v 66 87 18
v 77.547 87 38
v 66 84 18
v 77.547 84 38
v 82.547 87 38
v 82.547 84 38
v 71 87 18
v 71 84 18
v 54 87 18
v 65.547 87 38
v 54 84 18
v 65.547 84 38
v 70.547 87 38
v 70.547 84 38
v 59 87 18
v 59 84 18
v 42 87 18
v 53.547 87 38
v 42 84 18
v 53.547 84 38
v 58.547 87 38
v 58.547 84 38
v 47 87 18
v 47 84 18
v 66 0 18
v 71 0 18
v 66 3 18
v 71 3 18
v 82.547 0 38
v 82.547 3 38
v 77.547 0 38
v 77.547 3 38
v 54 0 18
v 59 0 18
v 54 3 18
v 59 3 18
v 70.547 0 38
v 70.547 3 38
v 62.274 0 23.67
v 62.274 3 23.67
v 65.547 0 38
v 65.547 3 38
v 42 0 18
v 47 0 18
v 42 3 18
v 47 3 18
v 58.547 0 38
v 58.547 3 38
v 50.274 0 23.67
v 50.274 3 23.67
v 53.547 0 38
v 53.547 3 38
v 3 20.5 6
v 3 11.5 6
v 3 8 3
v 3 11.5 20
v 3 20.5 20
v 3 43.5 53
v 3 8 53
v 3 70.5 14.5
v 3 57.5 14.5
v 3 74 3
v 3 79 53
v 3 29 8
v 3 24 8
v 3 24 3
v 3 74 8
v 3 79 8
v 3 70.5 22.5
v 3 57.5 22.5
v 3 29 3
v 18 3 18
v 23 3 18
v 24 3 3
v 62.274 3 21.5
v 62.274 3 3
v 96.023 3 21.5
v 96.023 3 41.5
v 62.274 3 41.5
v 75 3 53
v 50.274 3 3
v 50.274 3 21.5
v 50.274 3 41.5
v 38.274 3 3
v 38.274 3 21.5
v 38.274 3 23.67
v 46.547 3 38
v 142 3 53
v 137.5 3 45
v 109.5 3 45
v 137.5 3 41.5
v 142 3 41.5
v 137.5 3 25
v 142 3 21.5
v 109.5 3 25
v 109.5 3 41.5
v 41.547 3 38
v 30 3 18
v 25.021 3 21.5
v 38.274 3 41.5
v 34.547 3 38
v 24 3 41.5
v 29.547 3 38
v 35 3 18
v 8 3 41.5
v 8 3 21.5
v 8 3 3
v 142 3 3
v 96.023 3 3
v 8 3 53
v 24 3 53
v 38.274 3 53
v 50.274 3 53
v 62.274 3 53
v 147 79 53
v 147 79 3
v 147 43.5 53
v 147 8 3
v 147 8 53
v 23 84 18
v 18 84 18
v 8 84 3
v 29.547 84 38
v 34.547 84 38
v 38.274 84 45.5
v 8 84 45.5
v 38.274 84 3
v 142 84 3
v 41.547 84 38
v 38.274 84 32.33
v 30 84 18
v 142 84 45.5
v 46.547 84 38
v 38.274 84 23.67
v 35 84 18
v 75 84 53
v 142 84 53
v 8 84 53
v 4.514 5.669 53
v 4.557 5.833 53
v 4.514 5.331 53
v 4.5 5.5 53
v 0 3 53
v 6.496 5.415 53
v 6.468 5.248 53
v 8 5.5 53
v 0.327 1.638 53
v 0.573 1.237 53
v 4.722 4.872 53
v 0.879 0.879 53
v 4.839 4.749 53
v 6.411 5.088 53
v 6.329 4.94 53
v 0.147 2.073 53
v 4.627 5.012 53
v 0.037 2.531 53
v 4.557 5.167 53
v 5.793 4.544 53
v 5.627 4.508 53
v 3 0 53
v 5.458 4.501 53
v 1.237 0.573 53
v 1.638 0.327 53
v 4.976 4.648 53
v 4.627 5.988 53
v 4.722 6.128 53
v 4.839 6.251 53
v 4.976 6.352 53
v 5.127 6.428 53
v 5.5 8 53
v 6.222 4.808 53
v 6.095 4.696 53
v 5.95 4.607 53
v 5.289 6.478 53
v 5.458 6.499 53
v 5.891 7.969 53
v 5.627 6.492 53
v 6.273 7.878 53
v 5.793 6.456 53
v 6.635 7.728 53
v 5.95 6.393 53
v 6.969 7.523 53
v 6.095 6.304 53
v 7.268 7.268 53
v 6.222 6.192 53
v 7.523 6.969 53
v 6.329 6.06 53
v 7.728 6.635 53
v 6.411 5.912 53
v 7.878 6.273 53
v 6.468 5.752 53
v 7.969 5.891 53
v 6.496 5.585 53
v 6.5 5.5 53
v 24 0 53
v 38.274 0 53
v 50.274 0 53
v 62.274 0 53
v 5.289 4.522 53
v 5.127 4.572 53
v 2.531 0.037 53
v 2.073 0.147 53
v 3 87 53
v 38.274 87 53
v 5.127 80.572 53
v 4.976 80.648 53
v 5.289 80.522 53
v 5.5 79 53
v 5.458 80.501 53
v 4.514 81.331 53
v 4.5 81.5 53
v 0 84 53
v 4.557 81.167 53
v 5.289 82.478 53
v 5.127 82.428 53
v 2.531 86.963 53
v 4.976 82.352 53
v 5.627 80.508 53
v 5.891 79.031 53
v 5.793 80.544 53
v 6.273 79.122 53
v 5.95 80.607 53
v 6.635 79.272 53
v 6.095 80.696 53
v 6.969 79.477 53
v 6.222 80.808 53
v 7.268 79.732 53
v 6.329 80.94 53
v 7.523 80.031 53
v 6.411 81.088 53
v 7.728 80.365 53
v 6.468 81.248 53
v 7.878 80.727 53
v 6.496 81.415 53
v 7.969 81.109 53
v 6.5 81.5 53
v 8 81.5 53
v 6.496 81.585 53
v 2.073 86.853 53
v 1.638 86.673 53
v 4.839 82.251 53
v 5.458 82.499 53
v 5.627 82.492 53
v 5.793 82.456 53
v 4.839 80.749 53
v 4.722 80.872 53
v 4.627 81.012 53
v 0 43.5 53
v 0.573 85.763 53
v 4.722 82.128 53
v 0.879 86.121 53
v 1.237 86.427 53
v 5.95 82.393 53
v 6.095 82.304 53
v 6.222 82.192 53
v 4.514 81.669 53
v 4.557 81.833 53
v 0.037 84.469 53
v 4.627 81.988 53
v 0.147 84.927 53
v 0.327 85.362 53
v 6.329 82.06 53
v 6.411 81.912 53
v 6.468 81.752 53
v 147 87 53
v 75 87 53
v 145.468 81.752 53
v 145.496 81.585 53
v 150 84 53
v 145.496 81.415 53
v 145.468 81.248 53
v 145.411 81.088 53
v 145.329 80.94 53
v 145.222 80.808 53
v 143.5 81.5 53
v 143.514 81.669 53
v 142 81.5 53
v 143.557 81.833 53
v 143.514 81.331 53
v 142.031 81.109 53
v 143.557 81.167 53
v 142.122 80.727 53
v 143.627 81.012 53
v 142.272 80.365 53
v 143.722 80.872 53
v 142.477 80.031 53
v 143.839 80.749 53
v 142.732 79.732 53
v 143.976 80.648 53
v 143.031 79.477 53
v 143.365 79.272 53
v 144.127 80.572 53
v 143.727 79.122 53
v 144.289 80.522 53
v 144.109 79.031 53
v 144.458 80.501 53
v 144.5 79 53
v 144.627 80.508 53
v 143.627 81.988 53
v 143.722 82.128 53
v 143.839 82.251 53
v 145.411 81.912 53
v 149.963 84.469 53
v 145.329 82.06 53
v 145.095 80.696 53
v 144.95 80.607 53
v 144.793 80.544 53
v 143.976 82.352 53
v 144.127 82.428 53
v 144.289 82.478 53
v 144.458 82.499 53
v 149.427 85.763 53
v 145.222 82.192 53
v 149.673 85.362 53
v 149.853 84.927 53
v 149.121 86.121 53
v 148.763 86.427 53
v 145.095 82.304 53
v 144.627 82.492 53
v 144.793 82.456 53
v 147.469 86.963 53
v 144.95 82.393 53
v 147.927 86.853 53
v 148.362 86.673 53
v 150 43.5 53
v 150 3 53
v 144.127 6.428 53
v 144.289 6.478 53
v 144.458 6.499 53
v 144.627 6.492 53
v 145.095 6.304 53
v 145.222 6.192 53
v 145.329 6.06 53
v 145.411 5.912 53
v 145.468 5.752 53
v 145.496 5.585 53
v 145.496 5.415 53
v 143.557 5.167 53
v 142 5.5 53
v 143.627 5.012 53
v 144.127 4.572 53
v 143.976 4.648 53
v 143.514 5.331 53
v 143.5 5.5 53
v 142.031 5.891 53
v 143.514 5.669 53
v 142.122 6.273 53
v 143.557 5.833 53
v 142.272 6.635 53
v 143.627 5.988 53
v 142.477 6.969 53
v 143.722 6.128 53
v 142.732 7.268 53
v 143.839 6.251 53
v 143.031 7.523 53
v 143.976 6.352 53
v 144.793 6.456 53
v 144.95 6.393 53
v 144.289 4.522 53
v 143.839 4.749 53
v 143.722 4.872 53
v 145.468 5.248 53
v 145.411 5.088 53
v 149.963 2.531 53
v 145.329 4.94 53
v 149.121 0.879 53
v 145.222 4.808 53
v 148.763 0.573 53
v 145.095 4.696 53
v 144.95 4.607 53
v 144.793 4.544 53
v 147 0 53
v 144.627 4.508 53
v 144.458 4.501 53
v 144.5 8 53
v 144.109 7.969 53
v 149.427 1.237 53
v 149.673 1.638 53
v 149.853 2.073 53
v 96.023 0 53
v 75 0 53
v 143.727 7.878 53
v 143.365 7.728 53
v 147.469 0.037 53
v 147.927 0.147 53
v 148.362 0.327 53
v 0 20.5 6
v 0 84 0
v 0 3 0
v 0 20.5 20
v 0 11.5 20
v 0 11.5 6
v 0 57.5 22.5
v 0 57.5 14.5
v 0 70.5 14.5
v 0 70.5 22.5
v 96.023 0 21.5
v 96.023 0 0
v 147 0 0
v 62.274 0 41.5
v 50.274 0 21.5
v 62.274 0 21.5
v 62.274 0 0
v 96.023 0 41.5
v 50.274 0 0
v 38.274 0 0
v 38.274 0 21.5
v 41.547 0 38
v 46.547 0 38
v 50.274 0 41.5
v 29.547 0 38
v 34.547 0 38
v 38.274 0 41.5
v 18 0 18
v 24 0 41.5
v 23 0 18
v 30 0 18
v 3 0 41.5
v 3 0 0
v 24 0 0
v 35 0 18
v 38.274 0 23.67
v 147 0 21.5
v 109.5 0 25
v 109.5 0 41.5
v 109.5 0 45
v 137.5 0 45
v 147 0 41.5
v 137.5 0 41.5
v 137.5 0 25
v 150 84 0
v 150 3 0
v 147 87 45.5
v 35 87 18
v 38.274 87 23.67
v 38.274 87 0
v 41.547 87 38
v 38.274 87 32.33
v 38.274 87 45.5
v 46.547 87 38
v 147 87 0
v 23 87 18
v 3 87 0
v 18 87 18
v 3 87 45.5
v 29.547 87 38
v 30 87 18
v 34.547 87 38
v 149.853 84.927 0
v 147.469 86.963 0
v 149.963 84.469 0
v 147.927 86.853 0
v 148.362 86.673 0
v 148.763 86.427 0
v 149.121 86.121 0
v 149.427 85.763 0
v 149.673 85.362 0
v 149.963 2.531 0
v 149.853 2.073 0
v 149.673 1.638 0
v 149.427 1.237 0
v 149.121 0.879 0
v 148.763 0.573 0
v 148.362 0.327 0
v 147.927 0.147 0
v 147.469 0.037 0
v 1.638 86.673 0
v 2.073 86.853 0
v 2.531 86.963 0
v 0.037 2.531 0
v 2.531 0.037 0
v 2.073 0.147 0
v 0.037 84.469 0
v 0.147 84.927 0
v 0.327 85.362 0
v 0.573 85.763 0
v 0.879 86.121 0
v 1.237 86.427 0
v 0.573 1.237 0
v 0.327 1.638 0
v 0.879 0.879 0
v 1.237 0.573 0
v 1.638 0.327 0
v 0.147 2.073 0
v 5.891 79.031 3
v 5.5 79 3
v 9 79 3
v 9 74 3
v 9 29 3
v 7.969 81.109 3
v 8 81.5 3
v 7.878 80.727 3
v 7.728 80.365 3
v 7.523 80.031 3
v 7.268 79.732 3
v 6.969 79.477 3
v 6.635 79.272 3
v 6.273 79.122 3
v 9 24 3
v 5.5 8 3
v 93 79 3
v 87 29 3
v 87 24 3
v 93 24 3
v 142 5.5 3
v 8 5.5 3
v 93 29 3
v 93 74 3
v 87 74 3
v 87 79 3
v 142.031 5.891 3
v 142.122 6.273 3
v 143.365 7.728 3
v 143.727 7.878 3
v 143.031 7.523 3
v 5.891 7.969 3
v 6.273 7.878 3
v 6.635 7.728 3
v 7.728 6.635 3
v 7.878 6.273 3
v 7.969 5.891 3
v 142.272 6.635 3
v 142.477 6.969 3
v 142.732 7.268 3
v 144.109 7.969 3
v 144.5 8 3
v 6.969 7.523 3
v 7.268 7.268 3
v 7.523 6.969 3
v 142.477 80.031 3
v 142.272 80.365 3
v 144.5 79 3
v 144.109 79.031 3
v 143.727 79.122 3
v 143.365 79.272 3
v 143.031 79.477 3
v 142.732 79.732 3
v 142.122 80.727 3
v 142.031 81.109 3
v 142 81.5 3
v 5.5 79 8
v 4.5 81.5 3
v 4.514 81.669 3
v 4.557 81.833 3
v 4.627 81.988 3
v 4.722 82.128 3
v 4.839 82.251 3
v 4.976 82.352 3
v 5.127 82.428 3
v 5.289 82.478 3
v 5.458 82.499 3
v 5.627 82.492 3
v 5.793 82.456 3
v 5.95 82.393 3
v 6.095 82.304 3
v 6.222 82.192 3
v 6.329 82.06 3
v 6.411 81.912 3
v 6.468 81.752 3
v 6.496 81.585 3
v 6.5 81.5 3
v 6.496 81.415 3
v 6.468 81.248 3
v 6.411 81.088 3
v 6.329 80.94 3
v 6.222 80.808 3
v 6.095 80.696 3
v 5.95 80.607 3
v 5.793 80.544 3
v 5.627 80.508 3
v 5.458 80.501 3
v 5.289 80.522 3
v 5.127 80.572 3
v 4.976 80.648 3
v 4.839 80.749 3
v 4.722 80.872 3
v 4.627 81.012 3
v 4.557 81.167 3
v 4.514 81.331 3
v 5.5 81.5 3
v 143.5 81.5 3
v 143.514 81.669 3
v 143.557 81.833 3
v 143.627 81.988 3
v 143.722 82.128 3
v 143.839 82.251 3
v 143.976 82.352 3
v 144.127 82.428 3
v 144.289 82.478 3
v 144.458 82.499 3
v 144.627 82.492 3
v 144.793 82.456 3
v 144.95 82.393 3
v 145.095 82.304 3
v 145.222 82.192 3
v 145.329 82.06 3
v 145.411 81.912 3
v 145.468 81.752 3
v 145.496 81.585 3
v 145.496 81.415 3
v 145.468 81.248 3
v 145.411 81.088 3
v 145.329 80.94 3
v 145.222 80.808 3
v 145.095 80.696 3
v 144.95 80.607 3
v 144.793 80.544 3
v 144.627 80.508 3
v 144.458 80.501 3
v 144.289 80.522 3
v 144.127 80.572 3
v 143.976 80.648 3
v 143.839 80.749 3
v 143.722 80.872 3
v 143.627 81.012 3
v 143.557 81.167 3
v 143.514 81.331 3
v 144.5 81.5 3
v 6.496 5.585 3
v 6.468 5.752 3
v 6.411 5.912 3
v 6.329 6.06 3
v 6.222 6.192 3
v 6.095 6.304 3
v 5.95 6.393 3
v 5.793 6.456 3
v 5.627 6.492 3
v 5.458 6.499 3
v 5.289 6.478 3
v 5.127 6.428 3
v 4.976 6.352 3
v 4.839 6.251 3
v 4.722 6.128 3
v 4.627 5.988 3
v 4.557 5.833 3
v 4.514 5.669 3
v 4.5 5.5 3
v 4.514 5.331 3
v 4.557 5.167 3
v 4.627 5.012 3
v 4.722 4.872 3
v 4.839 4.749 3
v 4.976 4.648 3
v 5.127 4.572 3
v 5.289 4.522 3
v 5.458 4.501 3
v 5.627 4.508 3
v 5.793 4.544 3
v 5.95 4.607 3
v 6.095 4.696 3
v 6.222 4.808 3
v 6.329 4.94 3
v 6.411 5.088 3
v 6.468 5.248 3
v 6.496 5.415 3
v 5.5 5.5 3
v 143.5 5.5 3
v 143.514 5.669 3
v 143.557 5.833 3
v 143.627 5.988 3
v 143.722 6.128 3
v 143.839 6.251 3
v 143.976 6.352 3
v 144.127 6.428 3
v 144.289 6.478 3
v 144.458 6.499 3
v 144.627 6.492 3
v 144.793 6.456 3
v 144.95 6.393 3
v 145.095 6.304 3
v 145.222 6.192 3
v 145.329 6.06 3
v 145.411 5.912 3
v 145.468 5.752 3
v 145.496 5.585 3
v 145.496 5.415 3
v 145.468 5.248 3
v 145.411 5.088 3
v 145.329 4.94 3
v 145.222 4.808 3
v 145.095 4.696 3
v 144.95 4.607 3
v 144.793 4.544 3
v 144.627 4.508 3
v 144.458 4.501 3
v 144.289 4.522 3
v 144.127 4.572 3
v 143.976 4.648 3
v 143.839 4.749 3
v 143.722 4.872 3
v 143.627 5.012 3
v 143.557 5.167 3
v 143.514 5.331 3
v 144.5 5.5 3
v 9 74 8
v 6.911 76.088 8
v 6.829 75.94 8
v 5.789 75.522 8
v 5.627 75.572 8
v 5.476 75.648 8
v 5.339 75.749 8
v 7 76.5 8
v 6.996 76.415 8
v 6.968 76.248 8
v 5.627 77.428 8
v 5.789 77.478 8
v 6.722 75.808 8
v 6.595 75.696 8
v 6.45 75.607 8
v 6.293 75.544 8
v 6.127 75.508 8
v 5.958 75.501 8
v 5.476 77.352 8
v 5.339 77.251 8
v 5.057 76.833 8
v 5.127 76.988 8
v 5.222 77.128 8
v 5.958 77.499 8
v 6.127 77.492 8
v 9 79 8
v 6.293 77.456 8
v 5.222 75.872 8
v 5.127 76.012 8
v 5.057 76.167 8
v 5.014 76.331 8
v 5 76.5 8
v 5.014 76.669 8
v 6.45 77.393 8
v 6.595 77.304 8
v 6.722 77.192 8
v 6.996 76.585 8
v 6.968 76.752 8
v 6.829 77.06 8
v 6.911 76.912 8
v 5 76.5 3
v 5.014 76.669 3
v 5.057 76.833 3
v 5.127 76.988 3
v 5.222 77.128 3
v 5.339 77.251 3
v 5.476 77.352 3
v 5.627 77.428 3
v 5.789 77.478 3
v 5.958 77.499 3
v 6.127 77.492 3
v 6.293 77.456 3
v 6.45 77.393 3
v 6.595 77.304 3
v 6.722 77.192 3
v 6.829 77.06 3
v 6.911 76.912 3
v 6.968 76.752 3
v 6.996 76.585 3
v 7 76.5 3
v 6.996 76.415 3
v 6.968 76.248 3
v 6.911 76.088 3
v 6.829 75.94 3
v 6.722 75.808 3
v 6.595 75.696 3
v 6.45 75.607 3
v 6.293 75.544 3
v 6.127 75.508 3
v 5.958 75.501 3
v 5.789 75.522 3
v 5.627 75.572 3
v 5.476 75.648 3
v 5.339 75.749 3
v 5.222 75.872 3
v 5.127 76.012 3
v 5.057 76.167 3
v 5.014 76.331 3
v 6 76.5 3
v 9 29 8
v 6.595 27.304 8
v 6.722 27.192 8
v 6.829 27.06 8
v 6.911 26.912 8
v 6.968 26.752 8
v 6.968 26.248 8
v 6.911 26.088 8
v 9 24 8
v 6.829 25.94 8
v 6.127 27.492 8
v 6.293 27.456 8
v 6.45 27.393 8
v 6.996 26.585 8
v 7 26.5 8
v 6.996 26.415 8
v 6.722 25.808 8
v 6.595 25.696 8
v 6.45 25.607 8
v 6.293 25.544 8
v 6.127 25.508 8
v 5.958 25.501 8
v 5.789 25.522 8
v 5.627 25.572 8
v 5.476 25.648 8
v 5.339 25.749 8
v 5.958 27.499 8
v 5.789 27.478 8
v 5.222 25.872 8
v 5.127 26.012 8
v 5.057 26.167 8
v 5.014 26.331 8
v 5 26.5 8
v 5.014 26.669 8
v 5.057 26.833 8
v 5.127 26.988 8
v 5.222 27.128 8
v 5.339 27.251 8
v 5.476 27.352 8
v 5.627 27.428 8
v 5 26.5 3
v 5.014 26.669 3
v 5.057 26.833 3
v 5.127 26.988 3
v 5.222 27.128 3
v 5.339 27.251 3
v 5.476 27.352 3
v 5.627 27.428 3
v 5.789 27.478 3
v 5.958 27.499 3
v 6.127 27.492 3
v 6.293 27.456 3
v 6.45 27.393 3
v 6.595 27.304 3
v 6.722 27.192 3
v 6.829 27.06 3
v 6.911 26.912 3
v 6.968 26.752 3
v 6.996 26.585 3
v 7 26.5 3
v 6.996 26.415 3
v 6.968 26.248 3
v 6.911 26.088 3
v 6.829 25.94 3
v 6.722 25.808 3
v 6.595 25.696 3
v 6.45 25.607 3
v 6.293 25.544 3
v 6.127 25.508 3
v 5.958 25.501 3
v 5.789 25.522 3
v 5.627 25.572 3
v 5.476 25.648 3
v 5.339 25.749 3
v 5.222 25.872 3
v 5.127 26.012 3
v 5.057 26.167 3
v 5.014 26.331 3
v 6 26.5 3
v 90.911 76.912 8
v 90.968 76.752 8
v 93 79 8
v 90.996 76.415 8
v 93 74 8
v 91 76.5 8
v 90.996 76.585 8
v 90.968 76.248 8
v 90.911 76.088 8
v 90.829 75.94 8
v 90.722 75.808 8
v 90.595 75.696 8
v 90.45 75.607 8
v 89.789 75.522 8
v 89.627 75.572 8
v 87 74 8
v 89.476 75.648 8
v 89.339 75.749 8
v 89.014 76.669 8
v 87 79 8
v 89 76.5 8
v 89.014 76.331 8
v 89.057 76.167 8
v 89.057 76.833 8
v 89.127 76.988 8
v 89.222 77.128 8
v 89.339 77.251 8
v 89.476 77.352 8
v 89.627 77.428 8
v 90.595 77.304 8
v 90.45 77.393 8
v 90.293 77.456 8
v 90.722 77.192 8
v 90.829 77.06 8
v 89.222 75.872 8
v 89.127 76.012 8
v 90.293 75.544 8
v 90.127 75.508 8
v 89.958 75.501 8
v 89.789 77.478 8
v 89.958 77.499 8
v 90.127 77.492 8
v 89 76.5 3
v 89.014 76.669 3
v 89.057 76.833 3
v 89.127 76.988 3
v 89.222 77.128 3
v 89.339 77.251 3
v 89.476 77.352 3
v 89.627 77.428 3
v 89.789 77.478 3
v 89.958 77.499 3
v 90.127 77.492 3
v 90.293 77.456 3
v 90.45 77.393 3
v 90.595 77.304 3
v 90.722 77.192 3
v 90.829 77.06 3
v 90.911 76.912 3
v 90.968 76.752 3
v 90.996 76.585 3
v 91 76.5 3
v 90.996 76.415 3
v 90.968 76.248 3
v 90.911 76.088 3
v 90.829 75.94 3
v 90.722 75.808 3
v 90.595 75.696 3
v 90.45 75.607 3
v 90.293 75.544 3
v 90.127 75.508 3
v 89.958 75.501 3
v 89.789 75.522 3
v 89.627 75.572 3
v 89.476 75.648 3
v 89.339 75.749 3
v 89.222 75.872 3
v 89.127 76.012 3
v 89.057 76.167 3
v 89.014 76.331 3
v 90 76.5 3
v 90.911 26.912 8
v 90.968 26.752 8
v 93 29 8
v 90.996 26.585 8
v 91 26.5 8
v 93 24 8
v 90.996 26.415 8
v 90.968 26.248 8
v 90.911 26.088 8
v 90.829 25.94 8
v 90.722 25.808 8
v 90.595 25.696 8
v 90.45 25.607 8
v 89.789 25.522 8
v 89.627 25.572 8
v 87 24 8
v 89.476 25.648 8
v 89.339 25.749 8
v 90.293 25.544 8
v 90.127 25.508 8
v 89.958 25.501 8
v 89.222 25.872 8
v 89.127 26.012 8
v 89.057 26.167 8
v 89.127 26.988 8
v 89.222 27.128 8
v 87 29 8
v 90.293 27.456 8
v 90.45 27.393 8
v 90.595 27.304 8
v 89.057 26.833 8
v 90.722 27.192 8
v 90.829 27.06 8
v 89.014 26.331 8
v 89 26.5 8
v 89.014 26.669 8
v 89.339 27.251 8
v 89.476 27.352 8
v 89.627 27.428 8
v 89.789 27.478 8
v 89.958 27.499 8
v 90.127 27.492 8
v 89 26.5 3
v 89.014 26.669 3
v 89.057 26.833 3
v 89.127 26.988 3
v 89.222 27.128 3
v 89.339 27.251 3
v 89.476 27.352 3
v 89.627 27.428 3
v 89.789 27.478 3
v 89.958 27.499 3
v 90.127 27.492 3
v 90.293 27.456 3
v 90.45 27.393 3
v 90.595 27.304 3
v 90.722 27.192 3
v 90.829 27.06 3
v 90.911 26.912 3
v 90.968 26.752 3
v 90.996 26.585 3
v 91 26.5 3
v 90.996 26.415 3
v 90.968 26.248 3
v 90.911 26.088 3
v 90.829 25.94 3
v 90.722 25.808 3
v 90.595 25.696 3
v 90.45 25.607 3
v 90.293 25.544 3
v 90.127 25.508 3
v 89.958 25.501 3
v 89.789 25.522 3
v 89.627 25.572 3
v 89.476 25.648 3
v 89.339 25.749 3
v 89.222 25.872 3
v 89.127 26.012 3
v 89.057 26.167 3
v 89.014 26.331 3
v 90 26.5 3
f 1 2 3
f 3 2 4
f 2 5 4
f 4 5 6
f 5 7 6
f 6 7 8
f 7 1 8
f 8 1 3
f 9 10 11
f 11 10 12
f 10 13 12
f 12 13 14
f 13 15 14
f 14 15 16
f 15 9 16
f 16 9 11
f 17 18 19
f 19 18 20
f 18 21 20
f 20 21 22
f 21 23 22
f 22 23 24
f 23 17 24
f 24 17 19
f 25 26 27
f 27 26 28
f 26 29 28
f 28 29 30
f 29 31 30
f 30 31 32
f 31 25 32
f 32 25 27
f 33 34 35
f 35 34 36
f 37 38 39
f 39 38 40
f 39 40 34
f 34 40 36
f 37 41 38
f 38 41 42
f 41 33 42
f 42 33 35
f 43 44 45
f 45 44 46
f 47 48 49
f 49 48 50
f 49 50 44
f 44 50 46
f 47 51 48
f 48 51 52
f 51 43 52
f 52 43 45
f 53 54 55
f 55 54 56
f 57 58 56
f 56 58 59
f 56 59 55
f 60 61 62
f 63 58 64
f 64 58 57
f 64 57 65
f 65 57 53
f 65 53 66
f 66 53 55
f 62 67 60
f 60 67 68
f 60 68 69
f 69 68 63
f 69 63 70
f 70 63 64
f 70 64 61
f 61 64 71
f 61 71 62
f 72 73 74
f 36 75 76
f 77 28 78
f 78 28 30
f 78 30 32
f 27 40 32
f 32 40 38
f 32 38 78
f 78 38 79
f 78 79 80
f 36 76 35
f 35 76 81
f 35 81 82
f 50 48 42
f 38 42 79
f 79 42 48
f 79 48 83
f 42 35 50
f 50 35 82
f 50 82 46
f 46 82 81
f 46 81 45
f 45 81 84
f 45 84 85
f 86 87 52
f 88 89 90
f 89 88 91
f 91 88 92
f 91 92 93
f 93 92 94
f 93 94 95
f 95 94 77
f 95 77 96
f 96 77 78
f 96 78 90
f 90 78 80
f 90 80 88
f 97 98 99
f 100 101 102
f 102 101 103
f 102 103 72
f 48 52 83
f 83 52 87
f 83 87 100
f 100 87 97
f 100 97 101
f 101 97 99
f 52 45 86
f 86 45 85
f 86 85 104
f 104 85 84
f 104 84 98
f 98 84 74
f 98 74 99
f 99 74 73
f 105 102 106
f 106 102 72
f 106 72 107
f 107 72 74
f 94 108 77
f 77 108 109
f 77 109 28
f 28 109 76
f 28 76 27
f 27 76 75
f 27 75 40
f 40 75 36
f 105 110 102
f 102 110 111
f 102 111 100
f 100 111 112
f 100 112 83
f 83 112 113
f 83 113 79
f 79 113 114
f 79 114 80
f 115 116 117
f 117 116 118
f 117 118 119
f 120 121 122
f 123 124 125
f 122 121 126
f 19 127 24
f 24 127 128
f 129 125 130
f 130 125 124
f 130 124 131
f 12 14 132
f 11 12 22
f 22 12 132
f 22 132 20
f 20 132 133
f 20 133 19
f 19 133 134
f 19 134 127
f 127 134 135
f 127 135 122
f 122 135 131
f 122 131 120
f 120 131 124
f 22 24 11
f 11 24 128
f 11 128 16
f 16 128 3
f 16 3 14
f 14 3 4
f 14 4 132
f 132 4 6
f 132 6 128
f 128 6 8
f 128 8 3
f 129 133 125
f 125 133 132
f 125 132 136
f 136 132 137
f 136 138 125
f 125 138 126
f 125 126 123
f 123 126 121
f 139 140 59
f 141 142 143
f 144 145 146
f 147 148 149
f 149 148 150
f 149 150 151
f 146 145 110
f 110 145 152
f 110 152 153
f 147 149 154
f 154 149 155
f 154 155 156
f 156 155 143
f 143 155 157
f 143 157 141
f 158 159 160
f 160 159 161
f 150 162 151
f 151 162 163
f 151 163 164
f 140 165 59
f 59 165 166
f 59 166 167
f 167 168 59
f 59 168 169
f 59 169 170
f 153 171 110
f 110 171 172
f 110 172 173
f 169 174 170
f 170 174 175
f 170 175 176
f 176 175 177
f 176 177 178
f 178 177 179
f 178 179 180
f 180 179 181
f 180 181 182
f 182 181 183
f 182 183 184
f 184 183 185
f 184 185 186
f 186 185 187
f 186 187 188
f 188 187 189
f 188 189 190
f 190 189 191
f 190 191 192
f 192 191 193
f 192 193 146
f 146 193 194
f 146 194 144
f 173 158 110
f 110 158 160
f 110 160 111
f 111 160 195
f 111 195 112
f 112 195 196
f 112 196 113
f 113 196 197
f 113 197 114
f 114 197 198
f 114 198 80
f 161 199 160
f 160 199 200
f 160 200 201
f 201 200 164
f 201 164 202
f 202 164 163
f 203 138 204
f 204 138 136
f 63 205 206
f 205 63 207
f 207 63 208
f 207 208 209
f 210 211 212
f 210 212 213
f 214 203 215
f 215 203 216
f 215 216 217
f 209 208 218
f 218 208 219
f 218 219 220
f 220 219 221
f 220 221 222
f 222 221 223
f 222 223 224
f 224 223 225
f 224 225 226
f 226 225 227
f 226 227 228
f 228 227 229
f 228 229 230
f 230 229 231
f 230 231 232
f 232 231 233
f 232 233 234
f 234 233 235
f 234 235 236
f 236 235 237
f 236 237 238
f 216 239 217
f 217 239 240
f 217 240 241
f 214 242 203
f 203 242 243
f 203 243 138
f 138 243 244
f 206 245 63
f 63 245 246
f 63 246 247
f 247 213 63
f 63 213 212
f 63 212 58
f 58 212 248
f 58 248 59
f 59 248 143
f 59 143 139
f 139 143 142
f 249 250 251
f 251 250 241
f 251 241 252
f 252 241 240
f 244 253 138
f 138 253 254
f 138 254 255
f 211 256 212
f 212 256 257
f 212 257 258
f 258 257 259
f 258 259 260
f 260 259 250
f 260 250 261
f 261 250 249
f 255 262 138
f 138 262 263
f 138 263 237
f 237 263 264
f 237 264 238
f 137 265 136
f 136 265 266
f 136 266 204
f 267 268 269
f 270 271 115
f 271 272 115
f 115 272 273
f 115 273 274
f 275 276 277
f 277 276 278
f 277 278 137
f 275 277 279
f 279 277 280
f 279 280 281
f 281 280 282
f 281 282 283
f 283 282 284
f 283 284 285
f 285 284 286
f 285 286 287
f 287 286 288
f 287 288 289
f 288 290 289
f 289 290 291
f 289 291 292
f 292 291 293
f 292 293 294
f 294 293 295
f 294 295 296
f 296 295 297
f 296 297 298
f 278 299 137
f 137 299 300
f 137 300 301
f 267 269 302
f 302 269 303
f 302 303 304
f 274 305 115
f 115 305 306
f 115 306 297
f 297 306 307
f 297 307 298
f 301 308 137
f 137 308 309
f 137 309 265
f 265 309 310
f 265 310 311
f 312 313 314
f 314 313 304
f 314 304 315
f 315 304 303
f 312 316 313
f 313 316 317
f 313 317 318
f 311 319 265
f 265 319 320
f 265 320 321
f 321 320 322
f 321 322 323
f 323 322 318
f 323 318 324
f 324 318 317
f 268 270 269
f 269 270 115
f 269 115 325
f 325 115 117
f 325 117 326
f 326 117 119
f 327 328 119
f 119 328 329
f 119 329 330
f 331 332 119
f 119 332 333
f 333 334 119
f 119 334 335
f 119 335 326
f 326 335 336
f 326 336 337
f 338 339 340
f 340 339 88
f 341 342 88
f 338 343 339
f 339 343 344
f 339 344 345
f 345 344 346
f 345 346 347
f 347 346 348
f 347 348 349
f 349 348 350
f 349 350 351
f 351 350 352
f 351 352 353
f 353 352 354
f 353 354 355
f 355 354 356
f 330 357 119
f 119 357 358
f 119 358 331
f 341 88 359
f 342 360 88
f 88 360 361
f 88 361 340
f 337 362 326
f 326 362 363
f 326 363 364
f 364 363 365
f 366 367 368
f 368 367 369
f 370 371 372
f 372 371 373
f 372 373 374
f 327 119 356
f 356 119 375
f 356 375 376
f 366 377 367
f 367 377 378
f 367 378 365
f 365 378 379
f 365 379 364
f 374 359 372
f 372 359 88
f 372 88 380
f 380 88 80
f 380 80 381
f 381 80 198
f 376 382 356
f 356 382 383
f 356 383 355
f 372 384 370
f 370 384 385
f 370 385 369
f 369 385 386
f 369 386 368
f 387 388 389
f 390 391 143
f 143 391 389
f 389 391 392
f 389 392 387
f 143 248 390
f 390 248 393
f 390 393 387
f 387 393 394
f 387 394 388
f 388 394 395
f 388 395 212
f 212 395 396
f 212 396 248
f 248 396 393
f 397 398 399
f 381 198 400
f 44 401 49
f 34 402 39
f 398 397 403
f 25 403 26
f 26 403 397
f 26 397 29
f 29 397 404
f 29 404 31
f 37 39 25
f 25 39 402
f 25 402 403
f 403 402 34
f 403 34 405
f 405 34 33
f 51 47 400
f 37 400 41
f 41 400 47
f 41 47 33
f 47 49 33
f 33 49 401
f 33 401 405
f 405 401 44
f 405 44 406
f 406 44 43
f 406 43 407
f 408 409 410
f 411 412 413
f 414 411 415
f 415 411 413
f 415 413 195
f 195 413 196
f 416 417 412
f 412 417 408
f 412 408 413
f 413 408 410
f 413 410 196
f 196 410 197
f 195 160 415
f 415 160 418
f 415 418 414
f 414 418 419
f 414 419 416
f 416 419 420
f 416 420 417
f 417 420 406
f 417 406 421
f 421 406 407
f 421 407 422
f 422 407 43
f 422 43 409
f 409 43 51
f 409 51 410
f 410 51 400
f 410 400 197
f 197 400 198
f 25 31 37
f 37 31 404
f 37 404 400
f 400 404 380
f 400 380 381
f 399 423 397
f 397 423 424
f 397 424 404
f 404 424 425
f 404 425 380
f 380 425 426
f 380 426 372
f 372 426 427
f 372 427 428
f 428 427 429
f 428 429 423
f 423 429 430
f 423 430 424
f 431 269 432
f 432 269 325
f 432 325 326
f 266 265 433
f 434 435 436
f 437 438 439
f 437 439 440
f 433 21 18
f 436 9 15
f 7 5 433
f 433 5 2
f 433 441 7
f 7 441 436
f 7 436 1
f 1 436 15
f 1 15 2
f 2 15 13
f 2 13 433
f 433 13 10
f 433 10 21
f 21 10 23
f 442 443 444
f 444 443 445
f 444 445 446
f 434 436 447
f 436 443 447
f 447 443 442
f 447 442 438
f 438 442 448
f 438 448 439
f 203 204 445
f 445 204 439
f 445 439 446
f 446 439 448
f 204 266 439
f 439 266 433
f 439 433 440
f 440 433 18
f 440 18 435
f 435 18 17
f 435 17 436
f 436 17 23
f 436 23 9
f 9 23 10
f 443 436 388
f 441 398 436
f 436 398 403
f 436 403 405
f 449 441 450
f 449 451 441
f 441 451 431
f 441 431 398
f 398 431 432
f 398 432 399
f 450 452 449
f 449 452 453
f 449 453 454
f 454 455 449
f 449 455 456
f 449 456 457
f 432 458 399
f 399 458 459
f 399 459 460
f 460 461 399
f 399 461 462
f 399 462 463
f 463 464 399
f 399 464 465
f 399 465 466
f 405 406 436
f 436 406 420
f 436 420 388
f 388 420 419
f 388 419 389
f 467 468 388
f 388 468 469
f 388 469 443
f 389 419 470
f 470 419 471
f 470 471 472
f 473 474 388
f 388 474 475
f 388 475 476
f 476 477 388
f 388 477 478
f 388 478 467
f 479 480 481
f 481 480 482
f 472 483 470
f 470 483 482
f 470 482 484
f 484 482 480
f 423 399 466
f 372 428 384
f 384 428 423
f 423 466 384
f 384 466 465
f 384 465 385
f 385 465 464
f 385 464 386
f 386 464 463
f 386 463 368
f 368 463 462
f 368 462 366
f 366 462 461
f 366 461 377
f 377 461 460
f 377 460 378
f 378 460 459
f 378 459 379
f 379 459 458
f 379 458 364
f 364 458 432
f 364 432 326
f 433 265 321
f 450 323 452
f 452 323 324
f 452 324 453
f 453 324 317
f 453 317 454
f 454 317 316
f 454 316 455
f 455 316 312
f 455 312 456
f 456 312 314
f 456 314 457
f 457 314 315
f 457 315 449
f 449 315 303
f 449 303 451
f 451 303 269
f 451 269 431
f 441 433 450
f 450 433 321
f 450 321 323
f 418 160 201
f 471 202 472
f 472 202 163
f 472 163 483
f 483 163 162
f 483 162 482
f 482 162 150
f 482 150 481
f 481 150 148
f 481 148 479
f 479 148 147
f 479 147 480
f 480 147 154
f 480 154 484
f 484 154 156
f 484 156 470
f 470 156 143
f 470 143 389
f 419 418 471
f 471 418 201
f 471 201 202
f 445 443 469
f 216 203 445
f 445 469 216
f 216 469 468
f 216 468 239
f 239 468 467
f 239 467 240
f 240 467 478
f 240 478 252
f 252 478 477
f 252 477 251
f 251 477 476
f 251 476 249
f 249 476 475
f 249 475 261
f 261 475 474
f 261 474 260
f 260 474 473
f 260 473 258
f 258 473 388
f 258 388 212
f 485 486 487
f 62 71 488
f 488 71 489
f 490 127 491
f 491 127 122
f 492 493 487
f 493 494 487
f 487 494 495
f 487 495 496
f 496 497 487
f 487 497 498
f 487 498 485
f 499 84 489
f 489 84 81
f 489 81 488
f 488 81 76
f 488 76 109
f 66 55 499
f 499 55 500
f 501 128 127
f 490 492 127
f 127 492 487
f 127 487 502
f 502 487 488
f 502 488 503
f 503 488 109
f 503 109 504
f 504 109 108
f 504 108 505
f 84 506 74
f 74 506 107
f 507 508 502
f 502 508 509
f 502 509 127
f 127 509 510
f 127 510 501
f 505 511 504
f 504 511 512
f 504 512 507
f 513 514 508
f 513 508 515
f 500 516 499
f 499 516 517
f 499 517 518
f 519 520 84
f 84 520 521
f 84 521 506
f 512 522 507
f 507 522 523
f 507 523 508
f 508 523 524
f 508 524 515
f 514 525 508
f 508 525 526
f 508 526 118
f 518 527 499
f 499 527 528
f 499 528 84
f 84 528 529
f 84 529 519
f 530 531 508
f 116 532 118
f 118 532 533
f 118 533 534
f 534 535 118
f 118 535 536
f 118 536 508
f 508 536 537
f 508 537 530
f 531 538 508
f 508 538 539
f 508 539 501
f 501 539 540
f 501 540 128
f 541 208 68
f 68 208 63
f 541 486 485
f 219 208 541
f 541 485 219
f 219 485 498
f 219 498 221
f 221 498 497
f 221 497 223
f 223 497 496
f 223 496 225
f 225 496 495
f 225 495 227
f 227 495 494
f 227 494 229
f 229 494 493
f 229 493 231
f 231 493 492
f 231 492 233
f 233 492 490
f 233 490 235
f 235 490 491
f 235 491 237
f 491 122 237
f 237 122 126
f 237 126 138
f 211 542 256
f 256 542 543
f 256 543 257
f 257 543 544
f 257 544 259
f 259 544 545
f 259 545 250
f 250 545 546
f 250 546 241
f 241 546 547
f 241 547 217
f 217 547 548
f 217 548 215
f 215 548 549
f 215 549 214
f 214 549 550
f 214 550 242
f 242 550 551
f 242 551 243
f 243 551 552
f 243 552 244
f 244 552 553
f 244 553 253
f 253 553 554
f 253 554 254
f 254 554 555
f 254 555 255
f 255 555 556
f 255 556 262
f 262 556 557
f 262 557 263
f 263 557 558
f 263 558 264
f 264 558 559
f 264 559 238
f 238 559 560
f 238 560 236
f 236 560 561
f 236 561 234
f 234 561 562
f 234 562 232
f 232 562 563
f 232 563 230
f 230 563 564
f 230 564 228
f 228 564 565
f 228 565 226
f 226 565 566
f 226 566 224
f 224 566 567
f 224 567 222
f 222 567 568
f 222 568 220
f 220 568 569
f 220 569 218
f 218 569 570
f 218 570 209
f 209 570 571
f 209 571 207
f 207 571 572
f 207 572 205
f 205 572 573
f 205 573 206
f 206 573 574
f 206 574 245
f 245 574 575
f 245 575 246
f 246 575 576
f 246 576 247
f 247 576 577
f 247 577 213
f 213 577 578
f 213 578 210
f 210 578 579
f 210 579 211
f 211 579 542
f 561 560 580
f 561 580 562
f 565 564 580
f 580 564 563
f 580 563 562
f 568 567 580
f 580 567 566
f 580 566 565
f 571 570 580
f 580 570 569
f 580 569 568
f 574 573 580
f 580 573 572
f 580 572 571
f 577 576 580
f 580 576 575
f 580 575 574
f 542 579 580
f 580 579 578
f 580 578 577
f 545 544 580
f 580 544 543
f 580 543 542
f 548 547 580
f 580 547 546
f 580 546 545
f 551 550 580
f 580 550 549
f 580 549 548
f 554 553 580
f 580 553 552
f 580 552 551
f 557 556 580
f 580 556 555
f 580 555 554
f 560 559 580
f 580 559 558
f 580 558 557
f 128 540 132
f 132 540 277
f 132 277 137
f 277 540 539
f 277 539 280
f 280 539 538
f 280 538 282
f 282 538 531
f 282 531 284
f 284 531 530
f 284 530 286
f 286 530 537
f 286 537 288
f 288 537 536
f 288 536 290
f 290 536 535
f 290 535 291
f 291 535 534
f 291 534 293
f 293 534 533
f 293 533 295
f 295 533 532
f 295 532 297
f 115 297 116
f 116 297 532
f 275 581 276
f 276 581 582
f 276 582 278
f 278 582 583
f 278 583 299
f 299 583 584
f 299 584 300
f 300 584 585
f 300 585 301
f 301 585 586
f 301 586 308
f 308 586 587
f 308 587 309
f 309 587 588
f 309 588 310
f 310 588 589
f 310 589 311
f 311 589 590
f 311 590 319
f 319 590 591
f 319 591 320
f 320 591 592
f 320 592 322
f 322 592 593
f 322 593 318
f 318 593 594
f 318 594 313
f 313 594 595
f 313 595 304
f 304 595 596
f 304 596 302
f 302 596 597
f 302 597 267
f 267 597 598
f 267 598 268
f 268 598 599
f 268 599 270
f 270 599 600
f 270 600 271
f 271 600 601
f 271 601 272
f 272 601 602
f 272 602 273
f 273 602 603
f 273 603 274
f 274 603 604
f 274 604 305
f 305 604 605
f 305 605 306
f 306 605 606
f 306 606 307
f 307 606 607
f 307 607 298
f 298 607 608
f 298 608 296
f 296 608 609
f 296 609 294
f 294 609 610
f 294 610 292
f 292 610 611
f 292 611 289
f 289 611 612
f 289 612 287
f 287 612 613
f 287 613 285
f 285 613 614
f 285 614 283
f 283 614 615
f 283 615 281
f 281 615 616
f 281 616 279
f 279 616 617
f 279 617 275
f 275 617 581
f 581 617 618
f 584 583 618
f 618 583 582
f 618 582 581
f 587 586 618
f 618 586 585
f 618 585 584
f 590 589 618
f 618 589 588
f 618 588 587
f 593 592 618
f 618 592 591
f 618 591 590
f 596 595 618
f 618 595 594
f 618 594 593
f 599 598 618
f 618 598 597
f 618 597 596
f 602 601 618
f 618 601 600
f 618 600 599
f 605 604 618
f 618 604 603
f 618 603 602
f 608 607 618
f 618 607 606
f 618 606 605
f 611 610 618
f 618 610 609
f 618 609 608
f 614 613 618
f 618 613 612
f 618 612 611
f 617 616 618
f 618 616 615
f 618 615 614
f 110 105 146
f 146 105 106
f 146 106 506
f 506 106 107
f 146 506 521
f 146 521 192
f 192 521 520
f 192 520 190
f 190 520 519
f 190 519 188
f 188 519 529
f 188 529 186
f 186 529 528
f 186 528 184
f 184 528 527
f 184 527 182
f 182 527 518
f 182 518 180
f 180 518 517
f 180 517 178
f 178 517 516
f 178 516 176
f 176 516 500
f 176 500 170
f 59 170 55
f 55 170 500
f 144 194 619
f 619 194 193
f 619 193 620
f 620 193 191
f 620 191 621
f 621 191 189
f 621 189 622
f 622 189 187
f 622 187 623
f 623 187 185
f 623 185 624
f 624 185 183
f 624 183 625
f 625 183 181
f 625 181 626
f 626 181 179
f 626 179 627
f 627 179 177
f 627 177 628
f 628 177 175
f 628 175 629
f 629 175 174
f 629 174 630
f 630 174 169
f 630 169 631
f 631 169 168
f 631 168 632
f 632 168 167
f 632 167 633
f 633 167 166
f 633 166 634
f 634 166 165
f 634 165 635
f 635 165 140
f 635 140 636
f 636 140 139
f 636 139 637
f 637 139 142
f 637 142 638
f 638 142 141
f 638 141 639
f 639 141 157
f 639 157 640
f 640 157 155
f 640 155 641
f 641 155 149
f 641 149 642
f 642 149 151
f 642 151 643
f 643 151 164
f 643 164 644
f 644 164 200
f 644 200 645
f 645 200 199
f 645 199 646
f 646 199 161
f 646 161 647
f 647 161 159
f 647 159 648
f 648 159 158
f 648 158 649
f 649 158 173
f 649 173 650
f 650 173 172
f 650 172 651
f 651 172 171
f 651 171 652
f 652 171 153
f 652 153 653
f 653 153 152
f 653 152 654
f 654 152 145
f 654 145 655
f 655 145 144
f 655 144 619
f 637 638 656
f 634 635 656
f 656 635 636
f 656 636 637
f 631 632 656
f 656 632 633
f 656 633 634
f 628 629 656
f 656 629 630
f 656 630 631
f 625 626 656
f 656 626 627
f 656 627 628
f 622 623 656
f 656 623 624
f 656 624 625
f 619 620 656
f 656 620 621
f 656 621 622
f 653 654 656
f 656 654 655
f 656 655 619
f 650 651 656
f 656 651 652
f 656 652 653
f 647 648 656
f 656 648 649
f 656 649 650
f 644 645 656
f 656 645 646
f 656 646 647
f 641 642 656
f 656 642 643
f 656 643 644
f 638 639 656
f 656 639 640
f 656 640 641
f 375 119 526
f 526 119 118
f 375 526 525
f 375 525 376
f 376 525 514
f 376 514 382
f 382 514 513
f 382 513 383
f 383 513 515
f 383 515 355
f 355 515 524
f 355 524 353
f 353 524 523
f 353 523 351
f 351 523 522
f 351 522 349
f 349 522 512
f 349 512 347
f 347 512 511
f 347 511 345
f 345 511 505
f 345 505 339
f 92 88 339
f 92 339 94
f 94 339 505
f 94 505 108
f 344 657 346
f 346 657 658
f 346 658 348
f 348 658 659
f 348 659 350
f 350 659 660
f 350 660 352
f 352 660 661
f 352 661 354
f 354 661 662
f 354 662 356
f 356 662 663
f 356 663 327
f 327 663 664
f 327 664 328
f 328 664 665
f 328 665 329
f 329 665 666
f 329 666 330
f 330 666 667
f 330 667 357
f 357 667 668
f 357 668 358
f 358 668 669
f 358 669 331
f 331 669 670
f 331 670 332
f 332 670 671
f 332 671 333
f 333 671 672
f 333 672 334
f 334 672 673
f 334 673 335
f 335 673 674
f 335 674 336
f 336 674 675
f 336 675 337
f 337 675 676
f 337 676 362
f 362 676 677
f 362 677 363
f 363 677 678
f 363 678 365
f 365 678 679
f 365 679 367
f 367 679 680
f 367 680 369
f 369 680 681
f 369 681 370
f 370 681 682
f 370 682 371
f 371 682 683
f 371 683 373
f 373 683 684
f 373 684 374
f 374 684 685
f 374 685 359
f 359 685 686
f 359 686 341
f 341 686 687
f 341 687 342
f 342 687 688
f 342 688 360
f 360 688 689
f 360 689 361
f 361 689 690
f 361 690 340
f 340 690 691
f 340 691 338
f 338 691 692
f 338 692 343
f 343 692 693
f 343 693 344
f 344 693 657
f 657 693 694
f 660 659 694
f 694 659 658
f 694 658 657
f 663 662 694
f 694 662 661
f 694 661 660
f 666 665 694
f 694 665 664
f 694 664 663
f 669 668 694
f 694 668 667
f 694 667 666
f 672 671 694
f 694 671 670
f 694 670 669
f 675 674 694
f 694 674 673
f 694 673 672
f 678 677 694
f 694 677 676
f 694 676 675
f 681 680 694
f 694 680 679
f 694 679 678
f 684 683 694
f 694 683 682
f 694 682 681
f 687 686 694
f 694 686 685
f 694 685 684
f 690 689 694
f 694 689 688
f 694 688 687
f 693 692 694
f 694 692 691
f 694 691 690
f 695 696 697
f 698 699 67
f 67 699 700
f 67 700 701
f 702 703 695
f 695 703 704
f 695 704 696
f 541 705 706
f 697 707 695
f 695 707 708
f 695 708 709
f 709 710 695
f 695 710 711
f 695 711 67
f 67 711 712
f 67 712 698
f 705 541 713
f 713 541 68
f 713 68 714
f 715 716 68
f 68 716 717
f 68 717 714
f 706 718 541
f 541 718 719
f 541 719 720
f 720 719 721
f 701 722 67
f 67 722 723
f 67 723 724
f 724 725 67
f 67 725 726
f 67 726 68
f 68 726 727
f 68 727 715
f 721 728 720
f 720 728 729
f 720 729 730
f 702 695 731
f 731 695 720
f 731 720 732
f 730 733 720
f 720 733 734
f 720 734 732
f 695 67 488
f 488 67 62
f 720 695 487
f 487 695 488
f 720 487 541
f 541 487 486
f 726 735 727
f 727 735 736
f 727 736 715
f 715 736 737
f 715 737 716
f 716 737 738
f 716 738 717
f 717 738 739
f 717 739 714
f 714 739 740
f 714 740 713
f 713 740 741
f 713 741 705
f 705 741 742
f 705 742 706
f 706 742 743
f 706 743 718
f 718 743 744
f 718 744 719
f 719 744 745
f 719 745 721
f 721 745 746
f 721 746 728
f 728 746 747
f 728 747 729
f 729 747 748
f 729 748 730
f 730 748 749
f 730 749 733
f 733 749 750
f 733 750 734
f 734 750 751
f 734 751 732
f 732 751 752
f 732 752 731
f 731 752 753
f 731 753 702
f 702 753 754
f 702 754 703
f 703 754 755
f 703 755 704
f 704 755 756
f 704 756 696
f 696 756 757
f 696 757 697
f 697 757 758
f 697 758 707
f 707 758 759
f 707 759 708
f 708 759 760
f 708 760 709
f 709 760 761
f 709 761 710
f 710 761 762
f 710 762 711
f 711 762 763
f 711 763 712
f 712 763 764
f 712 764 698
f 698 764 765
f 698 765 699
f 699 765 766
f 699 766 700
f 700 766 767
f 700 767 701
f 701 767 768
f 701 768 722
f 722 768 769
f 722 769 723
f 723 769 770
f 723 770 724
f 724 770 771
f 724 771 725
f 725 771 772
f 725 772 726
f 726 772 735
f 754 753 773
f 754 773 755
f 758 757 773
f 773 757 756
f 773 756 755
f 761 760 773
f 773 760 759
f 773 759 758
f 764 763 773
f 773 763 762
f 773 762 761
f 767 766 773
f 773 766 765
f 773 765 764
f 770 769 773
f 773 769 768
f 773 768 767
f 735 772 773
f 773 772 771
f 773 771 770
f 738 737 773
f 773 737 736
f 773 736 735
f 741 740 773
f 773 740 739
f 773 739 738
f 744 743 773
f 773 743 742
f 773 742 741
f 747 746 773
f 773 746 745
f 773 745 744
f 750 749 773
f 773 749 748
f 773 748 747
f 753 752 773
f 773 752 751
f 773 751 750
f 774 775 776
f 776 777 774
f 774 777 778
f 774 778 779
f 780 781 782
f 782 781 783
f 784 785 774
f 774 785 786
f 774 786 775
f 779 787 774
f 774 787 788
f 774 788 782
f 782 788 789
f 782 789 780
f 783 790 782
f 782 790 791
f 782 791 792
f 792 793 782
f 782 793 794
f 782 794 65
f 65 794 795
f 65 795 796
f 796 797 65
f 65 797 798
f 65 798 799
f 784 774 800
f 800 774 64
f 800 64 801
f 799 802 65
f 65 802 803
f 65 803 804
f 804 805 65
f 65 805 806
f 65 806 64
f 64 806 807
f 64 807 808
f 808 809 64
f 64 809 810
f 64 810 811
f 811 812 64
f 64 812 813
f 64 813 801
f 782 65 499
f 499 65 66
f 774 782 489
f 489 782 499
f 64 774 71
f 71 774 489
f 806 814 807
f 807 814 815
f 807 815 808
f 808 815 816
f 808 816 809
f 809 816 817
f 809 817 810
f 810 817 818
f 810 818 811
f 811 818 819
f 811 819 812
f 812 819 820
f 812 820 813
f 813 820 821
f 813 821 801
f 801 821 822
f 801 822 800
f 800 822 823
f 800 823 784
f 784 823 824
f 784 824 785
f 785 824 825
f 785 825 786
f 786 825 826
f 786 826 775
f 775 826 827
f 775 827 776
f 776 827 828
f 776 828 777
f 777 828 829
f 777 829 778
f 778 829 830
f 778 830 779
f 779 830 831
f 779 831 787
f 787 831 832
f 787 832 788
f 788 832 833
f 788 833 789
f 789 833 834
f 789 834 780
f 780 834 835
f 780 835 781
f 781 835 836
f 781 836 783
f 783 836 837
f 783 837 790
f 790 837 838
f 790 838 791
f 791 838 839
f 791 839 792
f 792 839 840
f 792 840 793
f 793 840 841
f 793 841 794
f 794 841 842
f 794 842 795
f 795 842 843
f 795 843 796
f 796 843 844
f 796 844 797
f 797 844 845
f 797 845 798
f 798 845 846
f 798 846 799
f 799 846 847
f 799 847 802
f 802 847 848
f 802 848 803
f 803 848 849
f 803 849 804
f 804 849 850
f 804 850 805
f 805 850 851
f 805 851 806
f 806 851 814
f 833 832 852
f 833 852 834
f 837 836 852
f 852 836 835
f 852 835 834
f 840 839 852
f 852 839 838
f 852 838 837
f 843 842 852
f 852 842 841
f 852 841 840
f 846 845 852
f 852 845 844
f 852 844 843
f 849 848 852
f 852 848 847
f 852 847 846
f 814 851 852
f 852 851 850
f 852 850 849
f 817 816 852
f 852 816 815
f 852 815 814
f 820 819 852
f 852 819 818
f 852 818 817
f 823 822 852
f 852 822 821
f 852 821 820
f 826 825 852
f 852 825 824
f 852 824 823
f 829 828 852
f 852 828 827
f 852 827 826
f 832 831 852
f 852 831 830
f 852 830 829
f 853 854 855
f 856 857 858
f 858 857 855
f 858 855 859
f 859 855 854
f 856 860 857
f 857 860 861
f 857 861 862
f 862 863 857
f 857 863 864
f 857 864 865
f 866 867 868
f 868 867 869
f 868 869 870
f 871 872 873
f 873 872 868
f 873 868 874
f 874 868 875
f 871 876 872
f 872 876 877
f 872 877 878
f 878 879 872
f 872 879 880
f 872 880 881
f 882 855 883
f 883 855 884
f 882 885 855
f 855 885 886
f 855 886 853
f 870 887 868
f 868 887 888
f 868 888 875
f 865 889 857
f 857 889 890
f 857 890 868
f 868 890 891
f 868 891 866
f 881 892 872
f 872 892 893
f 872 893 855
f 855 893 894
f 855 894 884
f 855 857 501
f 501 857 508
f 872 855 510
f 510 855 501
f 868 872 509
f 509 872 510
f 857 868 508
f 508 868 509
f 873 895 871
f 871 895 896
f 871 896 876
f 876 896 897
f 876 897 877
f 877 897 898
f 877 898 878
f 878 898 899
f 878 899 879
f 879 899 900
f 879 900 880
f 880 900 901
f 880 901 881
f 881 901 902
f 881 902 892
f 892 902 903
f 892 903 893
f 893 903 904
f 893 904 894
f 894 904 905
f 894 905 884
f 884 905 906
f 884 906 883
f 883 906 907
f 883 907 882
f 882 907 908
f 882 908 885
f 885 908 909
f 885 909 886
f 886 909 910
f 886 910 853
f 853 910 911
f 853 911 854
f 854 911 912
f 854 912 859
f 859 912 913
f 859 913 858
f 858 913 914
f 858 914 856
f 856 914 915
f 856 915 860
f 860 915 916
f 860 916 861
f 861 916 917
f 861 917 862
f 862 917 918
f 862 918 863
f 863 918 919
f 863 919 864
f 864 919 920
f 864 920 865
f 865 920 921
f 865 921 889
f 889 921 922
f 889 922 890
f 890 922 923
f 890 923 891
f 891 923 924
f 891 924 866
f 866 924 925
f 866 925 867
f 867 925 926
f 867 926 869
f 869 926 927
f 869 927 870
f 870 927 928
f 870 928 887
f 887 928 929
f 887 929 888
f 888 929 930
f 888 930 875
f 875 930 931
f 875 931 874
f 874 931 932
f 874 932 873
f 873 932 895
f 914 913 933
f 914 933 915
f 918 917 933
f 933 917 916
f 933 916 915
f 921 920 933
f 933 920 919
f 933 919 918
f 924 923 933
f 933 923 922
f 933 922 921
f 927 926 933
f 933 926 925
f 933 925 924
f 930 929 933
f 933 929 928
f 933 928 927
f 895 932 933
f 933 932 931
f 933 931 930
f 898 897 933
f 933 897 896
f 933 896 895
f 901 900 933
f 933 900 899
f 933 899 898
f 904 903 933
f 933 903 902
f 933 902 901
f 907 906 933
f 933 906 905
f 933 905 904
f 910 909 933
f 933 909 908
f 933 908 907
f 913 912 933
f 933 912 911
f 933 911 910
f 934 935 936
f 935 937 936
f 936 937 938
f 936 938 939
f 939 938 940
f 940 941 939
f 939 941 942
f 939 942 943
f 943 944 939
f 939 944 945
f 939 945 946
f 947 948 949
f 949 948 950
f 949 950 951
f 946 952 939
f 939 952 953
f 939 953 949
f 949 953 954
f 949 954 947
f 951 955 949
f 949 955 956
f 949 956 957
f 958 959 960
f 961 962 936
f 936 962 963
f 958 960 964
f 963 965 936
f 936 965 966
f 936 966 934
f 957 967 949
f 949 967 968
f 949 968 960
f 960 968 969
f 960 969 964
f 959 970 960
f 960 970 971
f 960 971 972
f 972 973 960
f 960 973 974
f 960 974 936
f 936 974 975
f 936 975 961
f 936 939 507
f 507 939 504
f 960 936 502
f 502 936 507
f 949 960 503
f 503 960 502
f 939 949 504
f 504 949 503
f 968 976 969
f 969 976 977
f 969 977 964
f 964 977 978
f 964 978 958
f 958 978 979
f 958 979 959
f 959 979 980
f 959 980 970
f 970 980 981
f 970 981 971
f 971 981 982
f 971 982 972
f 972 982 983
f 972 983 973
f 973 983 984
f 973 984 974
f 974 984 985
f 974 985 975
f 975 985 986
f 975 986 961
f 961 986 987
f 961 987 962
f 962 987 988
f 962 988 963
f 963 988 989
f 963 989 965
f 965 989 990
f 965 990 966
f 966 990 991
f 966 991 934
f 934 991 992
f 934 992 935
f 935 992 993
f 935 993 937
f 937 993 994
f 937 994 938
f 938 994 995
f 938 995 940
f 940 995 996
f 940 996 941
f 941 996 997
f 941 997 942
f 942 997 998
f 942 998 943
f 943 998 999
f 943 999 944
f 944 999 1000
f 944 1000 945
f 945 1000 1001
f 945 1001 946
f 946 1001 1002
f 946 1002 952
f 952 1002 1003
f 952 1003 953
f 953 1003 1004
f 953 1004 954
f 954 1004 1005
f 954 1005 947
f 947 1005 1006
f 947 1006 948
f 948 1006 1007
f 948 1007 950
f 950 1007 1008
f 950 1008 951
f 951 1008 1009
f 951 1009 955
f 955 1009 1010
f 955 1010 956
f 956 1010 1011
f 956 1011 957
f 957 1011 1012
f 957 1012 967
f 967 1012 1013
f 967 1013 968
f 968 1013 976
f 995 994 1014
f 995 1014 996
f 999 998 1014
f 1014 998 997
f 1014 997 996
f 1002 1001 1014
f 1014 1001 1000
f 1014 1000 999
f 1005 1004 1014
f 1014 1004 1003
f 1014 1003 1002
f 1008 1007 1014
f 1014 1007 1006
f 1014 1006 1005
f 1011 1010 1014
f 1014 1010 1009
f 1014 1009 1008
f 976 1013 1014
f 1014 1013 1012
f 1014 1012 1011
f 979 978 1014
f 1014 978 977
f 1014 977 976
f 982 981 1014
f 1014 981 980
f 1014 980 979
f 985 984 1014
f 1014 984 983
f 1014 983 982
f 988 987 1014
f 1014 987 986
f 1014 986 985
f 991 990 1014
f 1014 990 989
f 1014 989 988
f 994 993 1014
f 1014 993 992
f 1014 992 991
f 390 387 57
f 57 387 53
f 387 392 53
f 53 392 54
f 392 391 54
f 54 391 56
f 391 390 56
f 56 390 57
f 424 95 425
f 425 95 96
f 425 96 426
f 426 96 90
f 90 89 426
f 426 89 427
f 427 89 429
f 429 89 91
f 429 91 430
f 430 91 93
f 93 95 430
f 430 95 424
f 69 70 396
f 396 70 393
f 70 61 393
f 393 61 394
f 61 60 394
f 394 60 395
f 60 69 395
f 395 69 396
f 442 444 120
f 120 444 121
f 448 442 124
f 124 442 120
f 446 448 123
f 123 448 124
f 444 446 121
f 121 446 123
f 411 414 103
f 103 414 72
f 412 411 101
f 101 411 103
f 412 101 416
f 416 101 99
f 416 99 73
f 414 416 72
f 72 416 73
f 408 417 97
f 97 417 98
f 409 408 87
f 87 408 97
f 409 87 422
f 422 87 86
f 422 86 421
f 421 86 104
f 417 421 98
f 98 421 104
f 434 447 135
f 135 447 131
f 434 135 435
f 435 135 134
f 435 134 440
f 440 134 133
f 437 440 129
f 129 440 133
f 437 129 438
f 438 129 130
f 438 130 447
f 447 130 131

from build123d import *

# Parameters (mm, degrees)
SKETCH1_W               = 150
SKETCH1_H               = 87
BODY_FRAME_DEPTH        = 53
BODY_EDGES_R            = 3
SHELL1_START            = 3
SHELL1_OUTLINE_W        = 81
SHELL1_OUTLINE_H        = 50
SHELL1_DEPTH            = 144
SKETCH3_R               = 1
SCREW_HOLE_DEPTH        = 50
MIRROR2_COPY_1_SKETCH_R = 1
MIRROR2_COPY_1_DEPTH    = 50
SKETCH4_W               = 6
SKETCH4_H               = 5
SKETCH4_R               = 1
BOSS_EXTRUDE3_DEPTH     = 5
SKETCH5_W               = 14
SKETCH5_H               = 9
SWITCH_DEPTH            = 179.849098404
SKETCH6_W               = 28
SKETCH6_H               = 20
AC_IN_DEPTH             = 3
SKETCH8_W               = 8
SKETCH8_H               = 13
PROGRAM_PORT_DEPTH      = 3
CUT_EXTRUDE1_DEPTH      = 182.322916367
LPATTERN1_COUNT         = 5
LPATTERN1_PITCH         = 12


# Read off the part's stored shape, not the designer's step: Shell1
with BuildPart() as part:
    # Sketch1 → Body_frame (new body)
    with BuildSketch(Plane.XY):
        with Locations((75, 43.5)):
            Rectangle(SKETCH1_W, SKETCH1_H)
    extrude(amount=BODY_FRAME_DEPTH)

    # body_edges
    body_edges_edges = [part.edges().sort_by_distance(p)[0] for p in [
        (0, 87, 26.5),
        (150, 87, 26.5),
        (150, 0, 26.5),
        (0, 0, 26.5),
    ]]
    fillet(body_edges_edges, radius=BODY_EDGES_R)

    # Shell1 outline → Shell1 (cut)
    with BuildSketch(Plane.YZ.offset(SHELL1_START)):
        with Locations((43.5, 28)):
            Rectangle(SHELL1_OUTLINE_W, SHELL1_OUTLINE_H)
    extrude(amount=SHELL1_DEPTH, mode=Mode.SUBTRACT)

    # Sketch3 → screw_hole (add)
    with BuildSketch(Plane.XY.offset(3)):
        with BuildLine():
            Line((3, 84), (8, 84))
            Line((8, 84), (8, 81.5))
            ThreePointArc((8, 81.5), (7.267766953, 79.732233047), (5.5, 79))
            Line((5.5, 79), (3, 79))
            Line((3, 79), (3, 84))
        make_face()
        with Locations((5.5, 81.5)):
            Circle(SKETCH3_R, mode=Mode.SUBTRACT)
    screw_hole = extrude(amount=SCREW_HOLE_DEPTH)

    # Mirror1: screw_hole across plane
    add(screw_hole.mirror(Plane.ZY.offset(-75)))

    # Mirror2: screw_hole across plane
    add(screw_hole.mirror(Plane.ZX.offset(43.5)))

    # Mirror2 copy 1 sketch → Mirror2 copy 1 (add)
    with BuildSketch(Plane(origin=(150, 87, 3), x_dir=(-1, 0, 0), z_dir=(0, 0, 1))):
        with BuildLine():
            Line((3, 84), (8, 84))
            Line((8, 84), (8, 81.5))
            ThreePointArc((8, 81.5), (7.267766953, 79.732233047), (5.5, 79))
            Line((5.5, 79), (3, 79))
            Line((3, 79), (3, 84))
        make_face()
        with Locations((5.5, 81.5)):
            Circle(MIRROR2_COPY_1_SKETCH_R, mode=Mode.SUBTRACT)
    extrude(amount=MIRROR2_COPY_1_DEPTH)

    # Sketch4 → Boss-Extrude3 (add)
    # profile 1 of 4: a face of its own
    with BuildSketch(Plane.XY.offset(3)):
        with Locations((6, 76.5)):
            Rectangle(SKETCH4_W, SKETCH4_H)
        with Locations((6, 76.5)):
            Circle(SKETCH4_R, mode=Mode.SUBTRACT)
    # profile 2 of 4: a face of its own
    with BuildSketch(Plane.XY.offset(3)):
        with Locations((90, 76.5)):
            Rectangle(SKETCH4_W, SKETCH4_H)
        with Locations((90, 76.5)):
            Circle(SKETCH4_R, mode=Mode.SUBTRACT)
    # profile 3 of 4: a face of its own
    with BuildSketch(Plane.XY.offset(3)):
        with Locations((6, 26.5)):
            Rectangle(SKETCH4_W, SKETCH4_H)
        with Locations((6, 26.5)):
            Circle(SKETCH4_R, mode=Mode.SUBTRACT)
    # profile 4 of 4: a face of its own
    with BuildSketch(Plane.XY.offset(3)):
        with Locations((90, 26.5)):
            Rectangle(SKETCH4_W, SKETCH4_H)
        with Locations((90, 26.5)):
            Circle(SKETCH4_R, mode=Mode.SUBTRACT)
    extrude(amount=BOSS_EXTRUDE3_DEPTH)

    # Sketch5 → switch (cut, through all)
    with BuildSketch(Plane(origin=(3, 0, 0), x_dir=(0, 0, -1), z_dir=(1, 0, 0))):
        with Locations((-13, 16)):
            Rectangle(SKETCH5_W, SKETCH5_H)
    extrude(amount=-SWITCH_DEPTH, mode=Mode.SUBTRACT)

    # Sketch6 → AC_IN (cut)
    with BuildSketch(Plane.XZ):
        with Locations((123.5, 35)):
            Rectangle(SKETCH6_W, SKETCH6_H)
    extrude(amount=-AC_IN_DEPTH, mode=Mode.SUBTRACT)

    # Sketch8 → Program_port (cut)
    with BuildSketch(Plane.ZY):
        with Locations((18.5, 64)):
            Rectangle(SKETCH8_W, SKETCH8_H)
    extrude(amount=-PROGRAM_PORT_DEPTH, mode=Mode.SUBTRACT)

    # Sketch9 → Cut-Extrude1 (cut, through all)
    with BuildSketch(Plane.XZ):
        Polygon((18, 18), (23, 18), (34.547005384, 38), (29.547005384, 38), align=None)
    cut_extrude1 = extrude(amount=-CUT_EXTRUDE1_DEPTH, mode=Mode.SUBTRACT)

    # LPattern1: Cut-Extrude1 ×5
    with Locations(*[(i * LPATTERN1_PITCH, 0, 0) for i in range(1, LPATTERN1_COUNT)]):
        add(cut_extrude1, mode=Mode.SUBTRACT)


solid = part.part
